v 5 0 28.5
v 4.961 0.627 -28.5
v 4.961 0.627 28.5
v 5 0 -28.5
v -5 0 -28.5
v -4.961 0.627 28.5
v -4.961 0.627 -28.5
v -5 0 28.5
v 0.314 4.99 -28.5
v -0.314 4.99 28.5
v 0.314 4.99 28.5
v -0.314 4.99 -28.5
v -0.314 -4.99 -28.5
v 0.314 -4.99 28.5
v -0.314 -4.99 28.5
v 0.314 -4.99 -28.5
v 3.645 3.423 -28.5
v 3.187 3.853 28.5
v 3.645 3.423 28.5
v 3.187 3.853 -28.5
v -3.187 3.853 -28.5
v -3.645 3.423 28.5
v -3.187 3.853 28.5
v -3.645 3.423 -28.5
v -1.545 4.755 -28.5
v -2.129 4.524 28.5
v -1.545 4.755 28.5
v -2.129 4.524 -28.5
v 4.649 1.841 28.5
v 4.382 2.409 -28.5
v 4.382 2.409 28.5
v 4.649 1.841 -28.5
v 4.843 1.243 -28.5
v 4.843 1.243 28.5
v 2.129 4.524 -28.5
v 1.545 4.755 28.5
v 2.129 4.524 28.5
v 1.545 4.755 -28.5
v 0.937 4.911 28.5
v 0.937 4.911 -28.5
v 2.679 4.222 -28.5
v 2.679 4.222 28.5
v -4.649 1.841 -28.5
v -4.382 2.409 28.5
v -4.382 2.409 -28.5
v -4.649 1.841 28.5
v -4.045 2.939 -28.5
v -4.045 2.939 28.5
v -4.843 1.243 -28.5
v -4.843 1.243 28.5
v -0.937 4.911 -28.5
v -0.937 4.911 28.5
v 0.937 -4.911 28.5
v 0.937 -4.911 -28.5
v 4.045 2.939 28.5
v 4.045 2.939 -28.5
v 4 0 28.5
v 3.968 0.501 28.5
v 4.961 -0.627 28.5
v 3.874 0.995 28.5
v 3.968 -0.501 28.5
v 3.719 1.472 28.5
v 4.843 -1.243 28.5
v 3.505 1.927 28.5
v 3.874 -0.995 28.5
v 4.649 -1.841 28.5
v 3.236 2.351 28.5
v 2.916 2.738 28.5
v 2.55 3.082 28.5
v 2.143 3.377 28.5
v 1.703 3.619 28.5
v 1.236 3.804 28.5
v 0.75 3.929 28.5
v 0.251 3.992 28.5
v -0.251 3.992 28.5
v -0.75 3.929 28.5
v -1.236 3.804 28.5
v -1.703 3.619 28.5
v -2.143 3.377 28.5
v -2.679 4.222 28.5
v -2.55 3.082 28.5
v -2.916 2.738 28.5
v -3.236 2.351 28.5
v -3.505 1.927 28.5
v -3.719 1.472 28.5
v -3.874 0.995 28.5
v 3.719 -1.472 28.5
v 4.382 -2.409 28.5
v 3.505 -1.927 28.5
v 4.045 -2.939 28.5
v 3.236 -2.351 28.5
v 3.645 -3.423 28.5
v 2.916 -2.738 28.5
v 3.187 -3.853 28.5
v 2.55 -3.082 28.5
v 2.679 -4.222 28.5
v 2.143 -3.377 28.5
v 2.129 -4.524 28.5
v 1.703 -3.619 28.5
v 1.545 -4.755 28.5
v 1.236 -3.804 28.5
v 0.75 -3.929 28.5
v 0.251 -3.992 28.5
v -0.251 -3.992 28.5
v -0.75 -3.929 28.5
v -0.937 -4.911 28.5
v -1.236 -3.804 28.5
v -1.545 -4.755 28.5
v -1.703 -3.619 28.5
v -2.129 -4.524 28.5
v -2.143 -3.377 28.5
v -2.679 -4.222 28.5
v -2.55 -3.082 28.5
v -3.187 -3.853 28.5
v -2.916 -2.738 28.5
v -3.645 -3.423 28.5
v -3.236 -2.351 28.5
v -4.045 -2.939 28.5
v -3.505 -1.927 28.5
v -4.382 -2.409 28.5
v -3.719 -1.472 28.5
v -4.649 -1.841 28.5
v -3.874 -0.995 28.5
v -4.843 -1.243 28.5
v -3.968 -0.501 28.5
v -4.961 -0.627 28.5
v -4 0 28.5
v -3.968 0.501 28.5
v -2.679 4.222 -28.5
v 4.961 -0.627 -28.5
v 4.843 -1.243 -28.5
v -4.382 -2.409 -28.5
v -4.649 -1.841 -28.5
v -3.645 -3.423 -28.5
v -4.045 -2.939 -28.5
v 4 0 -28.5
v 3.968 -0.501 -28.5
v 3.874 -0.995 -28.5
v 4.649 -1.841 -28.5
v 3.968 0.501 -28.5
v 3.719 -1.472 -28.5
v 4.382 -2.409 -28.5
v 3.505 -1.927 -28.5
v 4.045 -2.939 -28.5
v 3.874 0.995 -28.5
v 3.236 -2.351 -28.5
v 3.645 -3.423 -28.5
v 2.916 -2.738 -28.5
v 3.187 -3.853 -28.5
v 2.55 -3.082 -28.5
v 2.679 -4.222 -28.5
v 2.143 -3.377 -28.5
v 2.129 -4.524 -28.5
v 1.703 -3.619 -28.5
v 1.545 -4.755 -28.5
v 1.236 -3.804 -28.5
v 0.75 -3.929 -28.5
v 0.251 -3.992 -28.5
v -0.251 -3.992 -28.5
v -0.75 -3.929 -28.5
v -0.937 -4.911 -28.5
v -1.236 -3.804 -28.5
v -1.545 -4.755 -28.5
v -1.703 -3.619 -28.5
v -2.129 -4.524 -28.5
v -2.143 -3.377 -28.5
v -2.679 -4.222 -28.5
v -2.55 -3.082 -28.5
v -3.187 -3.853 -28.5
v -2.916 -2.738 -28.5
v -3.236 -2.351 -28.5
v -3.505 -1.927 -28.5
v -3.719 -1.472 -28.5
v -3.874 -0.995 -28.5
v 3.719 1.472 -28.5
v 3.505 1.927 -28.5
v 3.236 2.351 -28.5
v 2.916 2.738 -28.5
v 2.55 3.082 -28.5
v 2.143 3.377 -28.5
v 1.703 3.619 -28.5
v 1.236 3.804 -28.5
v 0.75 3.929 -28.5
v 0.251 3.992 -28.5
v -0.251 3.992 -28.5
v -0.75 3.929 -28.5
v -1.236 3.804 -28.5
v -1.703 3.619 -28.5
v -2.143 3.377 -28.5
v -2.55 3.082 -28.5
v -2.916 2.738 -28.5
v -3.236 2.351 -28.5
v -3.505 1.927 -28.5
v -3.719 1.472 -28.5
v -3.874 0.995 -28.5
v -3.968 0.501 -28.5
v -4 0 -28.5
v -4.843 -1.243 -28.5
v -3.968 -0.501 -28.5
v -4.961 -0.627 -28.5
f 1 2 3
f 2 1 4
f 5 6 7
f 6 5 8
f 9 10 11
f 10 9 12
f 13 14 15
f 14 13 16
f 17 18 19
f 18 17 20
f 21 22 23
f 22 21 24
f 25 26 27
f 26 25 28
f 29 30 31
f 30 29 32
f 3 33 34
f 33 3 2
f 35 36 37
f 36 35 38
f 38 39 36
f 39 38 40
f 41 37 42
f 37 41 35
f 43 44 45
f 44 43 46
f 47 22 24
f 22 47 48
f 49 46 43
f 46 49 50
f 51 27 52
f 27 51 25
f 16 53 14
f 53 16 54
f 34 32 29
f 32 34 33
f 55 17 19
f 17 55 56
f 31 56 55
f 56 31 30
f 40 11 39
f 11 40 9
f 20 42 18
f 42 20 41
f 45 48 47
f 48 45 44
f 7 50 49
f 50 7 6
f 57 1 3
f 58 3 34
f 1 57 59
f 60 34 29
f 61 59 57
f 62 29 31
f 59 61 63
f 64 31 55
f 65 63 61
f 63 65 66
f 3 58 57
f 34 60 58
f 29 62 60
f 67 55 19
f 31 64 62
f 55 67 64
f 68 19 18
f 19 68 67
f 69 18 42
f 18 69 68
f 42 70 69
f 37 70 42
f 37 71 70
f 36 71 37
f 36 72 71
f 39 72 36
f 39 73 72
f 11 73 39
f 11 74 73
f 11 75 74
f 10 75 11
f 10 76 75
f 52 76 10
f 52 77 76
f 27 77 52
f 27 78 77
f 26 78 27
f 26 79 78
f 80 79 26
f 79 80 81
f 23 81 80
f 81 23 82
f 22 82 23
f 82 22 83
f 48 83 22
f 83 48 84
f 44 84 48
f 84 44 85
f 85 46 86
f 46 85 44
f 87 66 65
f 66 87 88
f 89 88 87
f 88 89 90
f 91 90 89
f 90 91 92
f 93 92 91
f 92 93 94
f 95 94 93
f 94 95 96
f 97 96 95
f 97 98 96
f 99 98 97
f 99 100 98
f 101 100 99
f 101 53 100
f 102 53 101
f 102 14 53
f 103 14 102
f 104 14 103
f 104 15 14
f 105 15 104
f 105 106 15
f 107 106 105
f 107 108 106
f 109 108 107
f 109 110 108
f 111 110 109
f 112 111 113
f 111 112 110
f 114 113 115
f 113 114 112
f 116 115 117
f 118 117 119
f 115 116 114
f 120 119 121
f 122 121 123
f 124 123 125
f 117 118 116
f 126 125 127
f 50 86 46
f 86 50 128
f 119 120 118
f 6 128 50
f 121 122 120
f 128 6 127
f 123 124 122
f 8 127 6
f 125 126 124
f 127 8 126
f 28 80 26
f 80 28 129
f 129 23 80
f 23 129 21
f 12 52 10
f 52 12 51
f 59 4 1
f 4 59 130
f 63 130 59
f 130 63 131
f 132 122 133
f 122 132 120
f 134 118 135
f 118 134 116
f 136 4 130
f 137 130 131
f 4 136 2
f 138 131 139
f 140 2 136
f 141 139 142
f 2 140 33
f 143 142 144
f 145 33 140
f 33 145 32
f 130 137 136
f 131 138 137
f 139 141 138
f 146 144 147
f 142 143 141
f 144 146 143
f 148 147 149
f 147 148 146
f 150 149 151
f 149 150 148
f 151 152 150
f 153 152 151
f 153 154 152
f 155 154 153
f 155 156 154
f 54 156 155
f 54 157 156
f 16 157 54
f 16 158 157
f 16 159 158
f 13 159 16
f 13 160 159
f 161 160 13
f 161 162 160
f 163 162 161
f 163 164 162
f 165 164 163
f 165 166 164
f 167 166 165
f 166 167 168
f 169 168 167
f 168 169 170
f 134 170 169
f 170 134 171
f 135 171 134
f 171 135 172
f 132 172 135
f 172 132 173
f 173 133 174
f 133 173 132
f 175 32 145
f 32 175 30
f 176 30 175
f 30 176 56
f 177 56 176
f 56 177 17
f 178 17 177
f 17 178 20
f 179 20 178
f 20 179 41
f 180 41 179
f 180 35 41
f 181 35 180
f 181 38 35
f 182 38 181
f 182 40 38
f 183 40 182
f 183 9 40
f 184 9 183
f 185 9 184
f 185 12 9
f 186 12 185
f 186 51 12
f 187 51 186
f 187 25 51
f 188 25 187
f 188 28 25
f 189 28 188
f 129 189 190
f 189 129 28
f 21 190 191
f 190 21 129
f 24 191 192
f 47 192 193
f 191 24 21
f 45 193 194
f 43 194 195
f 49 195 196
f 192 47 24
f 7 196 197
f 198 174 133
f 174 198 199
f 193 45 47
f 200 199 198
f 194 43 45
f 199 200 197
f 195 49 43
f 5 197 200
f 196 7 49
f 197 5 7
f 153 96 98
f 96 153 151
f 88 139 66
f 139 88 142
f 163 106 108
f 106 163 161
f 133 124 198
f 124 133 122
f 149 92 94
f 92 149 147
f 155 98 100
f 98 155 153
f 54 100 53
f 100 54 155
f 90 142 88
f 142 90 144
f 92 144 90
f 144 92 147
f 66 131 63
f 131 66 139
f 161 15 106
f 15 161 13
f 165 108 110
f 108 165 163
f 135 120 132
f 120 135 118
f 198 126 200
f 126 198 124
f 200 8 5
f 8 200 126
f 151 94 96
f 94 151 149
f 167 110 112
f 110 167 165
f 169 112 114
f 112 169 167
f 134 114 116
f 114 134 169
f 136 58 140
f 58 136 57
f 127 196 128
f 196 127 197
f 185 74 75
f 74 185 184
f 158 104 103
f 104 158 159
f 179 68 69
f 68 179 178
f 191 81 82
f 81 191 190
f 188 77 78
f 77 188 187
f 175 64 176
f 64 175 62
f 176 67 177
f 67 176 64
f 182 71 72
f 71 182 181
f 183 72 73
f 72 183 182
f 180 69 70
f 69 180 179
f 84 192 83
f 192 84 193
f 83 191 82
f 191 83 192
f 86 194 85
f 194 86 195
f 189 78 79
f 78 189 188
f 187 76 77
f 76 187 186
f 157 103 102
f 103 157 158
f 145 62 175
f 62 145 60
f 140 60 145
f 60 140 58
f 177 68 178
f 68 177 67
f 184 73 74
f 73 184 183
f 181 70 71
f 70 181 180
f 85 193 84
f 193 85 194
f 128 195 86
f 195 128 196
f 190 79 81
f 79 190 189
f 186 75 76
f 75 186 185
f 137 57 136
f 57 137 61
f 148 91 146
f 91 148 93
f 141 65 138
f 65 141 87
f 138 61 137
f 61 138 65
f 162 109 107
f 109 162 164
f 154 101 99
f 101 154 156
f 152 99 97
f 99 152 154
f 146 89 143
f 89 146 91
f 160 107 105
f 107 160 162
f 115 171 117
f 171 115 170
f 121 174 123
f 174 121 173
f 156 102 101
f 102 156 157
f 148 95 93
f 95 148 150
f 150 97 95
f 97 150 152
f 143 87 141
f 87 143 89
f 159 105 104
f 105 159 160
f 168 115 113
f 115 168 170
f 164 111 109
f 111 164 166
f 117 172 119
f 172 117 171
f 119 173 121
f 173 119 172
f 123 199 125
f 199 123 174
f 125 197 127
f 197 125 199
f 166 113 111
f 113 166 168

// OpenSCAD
$fn = 50;


difference() {
	union() {
		translate(v = [0, 0, -28.5000000000]) {
			cylinder(h = 57, r = 5.0000000000);
		}
	}
	union() {
		translate(v = [0, 0, -100.0000000000]) {
			cylinder(h = 200, r = 4);
		}
	}
}
